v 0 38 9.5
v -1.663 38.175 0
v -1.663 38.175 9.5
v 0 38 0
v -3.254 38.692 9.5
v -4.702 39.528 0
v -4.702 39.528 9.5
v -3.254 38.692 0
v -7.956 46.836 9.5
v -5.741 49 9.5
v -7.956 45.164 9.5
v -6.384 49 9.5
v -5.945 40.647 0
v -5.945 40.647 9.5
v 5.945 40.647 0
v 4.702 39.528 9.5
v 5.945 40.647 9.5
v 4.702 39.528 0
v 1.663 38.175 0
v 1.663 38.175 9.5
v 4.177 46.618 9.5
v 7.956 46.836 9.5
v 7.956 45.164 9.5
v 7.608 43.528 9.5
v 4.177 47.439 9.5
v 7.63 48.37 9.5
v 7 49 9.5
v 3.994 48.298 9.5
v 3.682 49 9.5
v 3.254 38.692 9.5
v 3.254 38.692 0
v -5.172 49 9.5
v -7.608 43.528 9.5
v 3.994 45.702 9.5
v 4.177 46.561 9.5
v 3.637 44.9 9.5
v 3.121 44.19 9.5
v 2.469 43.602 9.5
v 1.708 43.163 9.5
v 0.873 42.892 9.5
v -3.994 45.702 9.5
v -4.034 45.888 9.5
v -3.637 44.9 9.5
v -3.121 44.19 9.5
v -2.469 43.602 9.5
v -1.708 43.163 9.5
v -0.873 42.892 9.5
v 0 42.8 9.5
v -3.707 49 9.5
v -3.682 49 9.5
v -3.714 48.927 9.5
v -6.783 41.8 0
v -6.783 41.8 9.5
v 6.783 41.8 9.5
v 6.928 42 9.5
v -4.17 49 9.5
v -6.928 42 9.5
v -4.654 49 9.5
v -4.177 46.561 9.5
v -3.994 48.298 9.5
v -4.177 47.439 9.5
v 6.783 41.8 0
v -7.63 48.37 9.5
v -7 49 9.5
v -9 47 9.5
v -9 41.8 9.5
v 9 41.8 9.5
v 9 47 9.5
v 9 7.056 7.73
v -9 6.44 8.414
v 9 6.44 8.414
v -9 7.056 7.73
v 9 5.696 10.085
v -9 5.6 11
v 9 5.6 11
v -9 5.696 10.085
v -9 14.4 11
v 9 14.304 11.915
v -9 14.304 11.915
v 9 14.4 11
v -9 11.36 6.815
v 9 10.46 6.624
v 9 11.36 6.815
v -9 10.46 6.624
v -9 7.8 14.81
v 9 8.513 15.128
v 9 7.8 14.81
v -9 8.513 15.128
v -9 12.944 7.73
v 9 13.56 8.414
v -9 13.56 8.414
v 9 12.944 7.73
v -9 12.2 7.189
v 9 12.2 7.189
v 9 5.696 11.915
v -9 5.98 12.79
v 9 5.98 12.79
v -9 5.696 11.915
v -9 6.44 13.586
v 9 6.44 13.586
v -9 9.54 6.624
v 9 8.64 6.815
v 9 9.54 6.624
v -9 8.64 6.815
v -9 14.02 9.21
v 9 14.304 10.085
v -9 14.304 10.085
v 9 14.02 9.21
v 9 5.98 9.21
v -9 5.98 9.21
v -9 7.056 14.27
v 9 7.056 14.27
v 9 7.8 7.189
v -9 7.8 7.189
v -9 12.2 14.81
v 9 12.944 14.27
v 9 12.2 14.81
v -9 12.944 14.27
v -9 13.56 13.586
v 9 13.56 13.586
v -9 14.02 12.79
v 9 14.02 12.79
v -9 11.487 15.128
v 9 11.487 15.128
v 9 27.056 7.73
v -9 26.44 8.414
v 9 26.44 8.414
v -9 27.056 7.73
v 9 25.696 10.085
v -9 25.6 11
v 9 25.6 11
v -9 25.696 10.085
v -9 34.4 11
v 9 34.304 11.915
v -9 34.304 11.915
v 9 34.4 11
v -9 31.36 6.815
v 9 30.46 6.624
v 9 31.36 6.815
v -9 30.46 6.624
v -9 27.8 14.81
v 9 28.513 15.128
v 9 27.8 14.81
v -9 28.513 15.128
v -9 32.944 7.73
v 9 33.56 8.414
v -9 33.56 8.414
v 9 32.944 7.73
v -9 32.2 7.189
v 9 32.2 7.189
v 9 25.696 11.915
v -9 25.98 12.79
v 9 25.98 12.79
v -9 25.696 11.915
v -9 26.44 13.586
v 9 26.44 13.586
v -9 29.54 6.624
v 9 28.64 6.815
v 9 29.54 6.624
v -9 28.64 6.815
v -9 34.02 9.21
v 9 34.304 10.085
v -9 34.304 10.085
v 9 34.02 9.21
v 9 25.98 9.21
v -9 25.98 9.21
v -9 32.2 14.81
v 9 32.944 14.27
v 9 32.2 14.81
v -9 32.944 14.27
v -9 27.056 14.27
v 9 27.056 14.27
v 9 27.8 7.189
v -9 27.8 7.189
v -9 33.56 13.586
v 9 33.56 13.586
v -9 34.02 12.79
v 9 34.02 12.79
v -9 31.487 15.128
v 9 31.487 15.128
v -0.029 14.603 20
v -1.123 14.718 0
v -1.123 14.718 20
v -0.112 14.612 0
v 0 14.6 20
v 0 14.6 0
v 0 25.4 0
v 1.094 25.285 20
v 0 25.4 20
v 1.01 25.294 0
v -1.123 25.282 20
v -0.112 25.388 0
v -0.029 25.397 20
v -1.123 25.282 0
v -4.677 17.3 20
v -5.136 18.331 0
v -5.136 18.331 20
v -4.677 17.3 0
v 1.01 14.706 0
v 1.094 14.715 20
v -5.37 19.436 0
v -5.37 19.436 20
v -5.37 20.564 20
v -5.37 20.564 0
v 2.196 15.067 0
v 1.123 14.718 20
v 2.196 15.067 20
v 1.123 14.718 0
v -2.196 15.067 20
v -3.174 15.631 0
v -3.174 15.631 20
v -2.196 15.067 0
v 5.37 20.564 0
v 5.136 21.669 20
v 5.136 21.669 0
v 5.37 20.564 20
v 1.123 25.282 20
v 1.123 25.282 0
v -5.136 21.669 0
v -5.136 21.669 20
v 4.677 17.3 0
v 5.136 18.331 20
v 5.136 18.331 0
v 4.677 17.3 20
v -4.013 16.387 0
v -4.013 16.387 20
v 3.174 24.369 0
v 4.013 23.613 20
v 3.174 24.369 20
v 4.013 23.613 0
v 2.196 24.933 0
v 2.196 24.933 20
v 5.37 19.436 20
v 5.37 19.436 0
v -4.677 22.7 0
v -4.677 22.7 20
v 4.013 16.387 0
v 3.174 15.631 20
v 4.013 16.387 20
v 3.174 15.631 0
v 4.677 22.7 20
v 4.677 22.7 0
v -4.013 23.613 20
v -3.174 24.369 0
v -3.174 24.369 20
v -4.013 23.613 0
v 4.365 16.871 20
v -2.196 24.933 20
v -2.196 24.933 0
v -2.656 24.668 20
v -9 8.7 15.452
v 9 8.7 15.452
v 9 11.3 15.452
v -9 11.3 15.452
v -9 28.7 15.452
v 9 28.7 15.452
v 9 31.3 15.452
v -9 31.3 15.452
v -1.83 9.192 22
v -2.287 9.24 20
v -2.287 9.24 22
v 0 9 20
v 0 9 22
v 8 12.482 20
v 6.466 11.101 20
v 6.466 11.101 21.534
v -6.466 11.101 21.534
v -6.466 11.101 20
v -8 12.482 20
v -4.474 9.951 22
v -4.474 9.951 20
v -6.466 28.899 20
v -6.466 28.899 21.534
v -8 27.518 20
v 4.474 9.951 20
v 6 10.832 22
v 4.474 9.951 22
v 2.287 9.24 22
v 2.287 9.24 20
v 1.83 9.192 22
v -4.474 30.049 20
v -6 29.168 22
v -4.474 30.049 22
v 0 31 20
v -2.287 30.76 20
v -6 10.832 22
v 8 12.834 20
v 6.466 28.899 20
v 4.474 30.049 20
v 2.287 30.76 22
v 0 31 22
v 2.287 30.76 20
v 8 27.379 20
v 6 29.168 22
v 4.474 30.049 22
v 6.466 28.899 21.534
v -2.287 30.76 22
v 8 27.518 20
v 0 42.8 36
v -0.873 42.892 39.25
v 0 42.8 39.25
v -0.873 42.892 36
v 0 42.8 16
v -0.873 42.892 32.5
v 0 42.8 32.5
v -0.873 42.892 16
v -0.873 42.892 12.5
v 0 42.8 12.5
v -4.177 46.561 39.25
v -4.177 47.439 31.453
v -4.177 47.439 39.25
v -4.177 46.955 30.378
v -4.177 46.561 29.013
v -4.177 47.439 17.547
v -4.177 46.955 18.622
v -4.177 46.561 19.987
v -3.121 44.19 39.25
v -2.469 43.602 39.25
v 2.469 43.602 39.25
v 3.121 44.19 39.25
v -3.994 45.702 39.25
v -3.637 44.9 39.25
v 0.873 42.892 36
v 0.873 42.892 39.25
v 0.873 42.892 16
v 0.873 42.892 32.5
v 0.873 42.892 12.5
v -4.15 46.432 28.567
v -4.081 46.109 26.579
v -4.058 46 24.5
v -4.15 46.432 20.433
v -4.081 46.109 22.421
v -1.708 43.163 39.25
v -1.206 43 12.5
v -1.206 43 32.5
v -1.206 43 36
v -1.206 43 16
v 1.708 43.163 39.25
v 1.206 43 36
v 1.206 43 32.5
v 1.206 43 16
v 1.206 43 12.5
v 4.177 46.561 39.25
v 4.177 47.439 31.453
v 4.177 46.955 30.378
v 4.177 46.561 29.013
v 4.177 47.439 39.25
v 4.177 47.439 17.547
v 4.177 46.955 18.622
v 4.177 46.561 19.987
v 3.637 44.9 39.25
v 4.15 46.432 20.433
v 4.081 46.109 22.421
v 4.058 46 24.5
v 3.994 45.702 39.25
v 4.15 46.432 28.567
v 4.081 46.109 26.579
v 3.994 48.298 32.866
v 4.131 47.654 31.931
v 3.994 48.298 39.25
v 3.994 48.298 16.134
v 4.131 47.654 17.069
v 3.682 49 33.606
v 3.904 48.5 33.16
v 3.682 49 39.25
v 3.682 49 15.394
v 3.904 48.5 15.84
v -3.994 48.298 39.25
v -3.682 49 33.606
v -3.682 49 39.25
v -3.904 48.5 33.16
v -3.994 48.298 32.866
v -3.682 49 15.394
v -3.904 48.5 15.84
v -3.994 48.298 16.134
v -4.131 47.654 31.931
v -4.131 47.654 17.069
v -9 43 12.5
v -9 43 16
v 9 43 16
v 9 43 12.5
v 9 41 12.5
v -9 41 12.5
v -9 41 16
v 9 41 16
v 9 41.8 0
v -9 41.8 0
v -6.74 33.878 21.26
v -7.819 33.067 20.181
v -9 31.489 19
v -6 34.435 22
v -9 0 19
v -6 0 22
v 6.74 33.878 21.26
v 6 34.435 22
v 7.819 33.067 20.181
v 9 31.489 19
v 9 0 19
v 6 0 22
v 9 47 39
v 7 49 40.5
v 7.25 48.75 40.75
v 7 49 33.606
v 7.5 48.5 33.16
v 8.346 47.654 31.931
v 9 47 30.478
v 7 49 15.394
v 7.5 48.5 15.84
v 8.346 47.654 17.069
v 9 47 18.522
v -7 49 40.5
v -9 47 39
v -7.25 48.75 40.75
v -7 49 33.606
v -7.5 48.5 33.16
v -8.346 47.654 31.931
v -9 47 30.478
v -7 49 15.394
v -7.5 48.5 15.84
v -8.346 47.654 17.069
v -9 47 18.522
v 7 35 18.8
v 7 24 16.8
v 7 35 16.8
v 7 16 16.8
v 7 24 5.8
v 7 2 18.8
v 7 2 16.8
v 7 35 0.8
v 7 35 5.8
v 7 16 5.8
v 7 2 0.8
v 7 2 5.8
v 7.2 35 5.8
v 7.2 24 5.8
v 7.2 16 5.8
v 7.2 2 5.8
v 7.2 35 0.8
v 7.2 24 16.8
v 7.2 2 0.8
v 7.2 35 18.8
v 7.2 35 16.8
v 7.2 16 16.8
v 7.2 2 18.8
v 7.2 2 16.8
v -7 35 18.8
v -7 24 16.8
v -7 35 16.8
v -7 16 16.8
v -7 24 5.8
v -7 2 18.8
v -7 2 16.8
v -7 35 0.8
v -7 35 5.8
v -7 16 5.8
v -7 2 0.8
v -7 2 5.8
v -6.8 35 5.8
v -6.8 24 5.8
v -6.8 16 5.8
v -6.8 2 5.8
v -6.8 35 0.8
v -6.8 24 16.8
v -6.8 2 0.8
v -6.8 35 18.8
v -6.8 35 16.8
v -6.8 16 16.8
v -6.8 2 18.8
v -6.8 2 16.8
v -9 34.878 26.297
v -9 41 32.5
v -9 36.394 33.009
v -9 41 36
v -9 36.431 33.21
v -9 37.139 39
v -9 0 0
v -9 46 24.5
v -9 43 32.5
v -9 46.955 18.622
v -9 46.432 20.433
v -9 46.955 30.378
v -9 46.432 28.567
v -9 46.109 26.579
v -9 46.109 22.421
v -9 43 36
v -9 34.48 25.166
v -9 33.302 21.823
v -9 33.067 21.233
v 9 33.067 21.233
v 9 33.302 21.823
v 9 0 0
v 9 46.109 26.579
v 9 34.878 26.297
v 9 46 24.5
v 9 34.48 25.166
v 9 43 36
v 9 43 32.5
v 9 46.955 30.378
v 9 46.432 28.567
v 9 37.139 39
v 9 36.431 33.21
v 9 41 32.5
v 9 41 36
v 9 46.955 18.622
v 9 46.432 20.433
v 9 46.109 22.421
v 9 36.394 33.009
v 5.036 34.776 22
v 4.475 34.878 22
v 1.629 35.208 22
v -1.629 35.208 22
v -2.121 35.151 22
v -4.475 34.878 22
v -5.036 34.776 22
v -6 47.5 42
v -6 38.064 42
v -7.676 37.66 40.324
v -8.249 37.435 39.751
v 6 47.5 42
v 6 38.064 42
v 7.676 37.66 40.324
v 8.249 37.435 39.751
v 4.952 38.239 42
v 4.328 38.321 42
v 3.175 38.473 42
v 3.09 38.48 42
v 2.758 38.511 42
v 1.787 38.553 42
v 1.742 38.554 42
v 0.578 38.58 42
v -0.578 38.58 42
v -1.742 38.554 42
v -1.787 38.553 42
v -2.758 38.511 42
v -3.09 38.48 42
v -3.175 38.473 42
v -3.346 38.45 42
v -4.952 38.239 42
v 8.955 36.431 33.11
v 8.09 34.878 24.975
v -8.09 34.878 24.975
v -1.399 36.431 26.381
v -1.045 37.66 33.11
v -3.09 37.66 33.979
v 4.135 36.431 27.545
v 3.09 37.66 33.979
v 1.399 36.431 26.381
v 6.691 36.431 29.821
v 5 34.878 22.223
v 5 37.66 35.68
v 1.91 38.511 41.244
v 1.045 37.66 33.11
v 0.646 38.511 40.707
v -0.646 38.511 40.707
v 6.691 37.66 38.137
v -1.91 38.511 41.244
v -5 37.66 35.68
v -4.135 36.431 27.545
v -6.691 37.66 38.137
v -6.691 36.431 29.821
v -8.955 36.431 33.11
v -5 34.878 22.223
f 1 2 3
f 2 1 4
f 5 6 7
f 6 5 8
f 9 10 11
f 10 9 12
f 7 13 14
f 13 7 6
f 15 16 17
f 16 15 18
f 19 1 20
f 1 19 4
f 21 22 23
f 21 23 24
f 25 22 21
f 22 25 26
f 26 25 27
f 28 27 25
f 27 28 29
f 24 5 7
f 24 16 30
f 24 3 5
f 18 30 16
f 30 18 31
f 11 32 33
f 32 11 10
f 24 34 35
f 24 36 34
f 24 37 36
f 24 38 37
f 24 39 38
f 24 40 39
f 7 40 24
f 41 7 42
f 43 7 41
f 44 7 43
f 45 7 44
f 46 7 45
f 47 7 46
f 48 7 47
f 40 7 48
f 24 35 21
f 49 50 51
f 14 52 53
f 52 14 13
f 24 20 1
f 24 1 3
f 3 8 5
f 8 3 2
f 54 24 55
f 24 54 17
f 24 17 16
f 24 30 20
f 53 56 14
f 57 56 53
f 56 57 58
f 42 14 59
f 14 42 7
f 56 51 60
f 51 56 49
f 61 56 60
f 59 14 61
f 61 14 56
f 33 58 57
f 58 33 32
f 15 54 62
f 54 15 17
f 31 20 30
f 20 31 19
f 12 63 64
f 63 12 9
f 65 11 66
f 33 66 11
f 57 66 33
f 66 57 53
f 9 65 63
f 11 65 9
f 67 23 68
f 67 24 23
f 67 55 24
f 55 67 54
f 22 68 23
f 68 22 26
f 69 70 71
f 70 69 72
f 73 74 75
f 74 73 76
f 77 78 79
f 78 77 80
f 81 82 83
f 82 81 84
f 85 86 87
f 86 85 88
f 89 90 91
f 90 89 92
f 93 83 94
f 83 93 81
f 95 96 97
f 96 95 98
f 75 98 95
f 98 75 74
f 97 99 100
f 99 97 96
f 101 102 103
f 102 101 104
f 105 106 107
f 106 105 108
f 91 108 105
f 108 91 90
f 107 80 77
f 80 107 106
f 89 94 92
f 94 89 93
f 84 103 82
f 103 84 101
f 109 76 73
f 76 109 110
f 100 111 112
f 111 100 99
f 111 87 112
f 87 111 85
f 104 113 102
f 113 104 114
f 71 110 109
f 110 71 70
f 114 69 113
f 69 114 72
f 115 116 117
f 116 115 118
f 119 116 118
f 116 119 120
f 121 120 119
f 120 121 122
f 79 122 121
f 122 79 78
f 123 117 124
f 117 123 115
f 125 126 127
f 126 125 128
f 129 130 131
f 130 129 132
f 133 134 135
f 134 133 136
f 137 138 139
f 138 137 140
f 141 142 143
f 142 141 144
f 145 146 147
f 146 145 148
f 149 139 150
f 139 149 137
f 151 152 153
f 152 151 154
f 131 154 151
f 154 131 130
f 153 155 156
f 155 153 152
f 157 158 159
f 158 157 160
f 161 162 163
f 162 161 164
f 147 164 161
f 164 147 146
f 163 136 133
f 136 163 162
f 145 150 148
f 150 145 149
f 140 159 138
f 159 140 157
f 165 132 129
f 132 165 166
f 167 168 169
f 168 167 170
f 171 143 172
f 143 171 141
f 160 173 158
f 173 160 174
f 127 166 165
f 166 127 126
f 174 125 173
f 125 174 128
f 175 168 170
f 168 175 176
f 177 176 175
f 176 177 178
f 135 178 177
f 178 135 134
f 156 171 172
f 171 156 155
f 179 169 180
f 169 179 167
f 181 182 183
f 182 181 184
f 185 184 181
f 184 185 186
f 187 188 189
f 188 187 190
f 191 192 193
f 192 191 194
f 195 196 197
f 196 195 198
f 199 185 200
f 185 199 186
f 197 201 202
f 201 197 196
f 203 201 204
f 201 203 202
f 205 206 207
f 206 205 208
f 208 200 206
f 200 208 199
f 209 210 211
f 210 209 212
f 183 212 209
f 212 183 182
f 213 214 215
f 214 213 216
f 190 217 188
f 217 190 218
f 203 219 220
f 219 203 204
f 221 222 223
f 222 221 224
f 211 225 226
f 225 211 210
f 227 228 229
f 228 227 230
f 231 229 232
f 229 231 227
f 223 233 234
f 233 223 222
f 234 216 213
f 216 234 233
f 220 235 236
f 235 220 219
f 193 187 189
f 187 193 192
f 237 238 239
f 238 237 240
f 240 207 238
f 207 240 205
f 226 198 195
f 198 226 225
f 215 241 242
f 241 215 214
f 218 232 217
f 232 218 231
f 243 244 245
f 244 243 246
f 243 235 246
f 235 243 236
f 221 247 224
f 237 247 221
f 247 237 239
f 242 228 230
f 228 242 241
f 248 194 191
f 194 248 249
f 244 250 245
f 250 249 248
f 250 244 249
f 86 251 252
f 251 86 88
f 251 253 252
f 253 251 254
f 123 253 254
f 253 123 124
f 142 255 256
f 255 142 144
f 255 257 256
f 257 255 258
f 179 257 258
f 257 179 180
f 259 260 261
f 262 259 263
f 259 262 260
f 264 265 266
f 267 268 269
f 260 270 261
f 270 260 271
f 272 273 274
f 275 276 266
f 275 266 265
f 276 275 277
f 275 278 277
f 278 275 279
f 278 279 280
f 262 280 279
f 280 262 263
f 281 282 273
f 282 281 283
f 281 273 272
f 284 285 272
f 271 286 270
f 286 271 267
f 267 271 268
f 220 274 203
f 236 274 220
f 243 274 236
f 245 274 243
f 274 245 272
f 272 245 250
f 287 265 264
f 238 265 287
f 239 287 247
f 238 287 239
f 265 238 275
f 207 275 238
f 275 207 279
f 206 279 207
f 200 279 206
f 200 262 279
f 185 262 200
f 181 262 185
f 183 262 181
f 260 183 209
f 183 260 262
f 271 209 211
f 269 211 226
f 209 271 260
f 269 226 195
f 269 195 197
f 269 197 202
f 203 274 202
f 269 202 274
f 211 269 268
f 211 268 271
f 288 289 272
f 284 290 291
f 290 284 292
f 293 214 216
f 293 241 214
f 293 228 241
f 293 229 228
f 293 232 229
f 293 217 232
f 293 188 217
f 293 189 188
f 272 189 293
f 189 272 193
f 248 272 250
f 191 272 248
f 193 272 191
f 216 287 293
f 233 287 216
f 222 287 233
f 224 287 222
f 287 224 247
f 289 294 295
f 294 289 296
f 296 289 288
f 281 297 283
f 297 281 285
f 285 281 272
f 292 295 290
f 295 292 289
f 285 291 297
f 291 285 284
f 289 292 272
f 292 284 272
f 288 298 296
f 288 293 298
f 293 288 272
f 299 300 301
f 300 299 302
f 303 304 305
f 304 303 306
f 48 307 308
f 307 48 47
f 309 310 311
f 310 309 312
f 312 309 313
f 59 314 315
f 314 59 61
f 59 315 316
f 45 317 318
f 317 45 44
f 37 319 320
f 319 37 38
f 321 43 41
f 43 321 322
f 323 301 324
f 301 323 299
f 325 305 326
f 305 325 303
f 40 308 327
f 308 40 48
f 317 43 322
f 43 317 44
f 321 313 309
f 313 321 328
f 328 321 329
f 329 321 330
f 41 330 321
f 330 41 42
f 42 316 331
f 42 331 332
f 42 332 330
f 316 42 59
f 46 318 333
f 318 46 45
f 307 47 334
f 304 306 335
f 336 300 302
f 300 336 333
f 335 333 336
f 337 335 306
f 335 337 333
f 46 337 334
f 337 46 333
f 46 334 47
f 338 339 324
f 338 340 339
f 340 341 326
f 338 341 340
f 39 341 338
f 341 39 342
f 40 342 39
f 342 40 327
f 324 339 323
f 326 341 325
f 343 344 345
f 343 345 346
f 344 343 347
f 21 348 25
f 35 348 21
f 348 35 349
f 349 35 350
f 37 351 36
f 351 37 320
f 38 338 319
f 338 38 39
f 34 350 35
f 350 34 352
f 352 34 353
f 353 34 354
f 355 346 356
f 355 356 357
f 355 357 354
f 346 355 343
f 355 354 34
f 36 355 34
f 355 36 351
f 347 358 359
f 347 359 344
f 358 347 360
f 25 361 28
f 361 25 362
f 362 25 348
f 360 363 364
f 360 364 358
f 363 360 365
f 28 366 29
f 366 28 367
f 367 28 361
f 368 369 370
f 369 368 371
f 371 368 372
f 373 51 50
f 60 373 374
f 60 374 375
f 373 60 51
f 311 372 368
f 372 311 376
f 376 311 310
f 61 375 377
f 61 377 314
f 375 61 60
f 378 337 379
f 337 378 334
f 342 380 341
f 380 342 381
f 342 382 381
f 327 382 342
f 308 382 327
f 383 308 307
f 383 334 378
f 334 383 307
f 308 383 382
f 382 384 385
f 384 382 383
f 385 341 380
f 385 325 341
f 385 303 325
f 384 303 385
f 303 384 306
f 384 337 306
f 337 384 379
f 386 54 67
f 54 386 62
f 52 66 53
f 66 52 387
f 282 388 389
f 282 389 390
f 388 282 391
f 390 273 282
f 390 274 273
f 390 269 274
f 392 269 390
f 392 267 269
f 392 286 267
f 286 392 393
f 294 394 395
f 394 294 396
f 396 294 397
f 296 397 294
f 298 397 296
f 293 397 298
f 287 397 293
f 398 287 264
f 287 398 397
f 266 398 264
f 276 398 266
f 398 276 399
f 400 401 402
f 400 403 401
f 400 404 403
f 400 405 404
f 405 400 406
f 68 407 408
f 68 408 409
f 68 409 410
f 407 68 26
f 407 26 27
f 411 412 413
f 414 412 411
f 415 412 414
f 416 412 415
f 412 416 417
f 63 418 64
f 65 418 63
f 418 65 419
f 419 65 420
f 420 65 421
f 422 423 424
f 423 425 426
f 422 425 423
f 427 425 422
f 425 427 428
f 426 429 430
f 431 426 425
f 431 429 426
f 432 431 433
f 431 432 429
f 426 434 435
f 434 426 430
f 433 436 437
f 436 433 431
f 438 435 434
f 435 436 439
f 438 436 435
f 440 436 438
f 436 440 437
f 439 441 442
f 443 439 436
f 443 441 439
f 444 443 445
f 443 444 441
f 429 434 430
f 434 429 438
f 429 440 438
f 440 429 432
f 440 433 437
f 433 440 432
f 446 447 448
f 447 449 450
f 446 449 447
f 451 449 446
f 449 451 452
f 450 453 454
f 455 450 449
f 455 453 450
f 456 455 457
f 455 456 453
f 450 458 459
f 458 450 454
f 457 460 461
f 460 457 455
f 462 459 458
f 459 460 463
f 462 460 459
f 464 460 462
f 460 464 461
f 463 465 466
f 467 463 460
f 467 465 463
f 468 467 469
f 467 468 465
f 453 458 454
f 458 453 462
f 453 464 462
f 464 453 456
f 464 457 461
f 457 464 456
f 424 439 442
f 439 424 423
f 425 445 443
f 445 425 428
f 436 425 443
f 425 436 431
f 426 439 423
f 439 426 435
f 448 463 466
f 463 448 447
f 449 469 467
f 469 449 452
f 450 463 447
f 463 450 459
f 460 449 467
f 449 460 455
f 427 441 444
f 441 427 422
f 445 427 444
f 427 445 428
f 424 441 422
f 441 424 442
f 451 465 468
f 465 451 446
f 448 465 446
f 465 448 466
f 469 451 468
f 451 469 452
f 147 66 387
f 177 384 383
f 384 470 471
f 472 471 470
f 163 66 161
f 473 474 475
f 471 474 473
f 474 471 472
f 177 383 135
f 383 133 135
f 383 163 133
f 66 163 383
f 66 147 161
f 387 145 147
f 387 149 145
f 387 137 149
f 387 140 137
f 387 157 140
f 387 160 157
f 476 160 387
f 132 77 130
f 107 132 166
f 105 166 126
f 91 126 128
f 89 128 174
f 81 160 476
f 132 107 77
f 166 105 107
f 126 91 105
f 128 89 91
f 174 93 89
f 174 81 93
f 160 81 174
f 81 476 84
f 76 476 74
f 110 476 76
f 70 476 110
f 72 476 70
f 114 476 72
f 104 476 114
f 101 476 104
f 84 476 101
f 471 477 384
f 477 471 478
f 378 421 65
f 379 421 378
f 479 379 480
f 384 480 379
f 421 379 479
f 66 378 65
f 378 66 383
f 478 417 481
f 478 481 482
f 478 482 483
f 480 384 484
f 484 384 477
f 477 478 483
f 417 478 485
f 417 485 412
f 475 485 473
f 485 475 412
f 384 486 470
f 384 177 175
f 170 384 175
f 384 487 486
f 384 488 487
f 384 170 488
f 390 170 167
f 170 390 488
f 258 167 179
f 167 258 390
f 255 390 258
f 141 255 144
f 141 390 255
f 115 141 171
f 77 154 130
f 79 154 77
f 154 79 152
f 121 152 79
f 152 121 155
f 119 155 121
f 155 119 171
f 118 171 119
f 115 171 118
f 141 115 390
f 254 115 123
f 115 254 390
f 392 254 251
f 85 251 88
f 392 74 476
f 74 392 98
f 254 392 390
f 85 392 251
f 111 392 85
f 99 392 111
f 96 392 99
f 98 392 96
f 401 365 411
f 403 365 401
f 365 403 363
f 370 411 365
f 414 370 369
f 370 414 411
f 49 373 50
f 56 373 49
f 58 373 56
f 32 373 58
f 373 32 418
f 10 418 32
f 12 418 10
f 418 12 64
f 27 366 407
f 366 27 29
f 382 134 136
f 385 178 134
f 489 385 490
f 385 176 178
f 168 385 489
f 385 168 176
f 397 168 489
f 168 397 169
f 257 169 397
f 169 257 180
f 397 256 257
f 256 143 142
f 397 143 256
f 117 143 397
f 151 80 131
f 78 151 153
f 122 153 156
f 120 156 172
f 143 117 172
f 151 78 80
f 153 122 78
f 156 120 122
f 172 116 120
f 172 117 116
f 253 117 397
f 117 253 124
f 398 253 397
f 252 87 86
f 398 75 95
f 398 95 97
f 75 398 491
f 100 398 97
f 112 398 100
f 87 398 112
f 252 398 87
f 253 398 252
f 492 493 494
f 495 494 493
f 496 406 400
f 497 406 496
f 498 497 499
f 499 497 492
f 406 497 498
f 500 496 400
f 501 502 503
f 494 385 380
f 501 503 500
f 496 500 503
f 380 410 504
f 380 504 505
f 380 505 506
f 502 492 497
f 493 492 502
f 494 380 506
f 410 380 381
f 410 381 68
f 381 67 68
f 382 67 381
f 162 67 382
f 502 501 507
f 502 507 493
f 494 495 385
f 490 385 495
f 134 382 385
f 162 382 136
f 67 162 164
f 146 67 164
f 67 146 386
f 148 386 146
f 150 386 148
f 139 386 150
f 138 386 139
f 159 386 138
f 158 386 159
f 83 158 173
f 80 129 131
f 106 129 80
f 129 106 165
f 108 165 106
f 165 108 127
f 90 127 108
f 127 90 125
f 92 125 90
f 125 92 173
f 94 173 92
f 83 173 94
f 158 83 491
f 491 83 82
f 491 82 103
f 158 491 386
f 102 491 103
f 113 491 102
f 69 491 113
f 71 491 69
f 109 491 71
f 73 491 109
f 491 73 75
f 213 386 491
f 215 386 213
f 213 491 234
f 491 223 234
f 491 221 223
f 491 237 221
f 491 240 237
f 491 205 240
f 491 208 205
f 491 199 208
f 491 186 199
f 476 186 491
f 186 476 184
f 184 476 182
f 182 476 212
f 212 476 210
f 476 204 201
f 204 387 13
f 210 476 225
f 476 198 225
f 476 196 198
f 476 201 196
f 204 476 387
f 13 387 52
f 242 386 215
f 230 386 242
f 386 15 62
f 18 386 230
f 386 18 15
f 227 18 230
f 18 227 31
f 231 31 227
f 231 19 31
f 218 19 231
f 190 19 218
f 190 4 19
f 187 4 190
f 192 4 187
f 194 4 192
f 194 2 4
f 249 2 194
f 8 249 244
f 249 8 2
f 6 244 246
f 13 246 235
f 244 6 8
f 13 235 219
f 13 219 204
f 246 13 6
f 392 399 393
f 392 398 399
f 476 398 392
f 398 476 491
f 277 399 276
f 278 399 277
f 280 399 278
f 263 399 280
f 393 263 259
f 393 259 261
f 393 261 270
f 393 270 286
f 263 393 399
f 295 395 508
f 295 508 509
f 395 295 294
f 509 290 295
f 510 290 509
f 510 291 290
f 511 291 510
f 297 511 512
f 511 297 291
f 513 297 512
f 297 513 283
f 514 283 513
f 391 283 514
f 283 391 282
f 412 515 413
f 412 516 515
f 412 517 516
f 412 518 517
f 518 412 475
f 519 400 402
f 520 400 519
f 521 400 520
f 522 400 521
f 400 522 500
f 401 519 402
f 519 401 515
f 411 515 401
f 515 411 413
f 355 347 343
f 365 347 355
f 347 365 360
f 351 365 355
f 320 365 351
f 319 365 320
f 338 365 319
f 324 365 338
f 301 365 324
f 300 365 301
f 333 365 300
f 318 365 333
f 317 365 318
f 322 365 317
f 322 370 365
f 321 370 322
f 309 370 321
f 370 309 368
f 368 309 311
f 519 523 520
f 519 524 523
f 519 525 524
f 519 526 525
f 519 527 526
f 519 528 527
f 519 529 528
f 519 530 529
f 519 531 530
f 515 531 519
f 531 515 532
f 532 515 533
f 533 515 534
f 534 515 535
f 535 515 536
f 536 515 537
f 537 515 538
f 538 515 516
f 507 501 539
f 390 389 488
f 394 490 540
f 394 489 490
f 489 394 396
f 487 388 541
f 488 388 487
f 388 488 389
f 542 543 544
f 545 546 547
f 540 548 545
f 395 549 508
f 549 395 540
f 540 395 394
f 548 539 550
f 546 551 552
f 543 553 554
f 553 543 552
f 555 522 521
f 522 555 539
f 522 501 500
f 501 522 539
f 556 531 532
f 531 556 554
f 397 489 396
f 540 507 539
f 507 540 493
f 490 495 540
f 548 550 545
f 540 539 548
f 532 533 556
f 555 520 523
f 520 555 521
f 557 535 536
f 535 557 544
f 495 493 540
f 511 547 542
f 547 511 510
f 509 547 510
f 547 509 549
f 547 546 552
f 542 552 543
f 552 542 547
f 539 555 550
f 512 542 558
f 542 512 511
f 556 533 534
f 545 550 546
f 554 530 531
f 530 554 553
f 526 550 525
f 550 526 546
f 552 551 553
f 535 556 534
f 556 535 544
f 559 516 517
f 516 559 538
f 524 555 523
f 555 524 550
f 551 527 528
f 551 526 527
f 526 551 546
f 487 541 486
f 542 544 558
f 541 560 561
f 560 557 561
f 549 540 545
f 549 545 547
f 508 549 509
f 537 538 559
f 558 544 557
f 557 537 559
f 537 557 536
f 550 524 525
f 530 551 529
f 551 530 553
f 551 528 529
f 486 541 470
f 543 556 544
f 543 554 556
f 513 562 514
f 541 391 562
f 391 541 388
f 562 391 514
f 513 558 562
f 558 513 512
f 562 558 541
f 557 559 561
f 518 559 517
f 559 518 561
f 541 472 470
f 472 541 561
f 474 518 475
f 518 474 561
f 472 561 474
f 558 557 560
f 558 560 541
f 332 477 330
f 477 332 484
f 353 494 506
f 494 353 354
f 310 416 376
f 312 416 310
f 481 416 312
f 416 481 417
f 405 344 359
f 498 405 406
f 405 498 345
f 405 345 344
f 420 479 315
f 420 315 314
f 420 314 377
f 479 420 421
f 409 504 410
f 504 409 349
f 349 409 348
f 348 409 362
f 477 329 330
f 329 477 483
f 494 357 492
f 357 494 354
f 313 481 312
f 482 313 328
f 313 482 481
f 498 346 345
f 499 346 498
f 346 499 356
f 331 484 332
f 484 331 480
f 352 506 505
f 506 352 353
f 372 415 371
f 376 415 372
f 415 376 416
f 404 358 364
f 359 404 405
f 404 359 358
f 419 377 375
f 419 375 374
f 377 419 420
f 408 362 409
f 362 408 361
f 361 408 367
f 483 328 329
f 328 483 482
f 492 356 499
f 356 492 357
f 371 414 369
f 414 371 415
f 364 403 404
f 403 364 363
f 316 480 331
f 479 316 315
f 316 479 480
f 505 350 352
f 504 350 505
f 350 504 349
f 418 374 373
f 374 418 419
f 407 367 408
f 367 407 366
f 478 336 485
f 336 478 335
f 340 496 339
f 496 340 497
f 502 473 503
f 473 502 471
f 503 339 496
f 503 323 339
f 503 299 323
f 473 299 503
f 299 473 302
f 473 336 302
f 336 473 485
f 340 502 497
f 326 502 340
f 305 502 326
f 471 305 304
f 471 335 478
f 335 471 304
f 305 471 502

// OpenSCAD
// PRUSA iteration3
// Y frame corners
// GNU GPL v3
// Josef Průša <iam@josefprusa.cz> and contributors
// http://www.reprap.org/wiki/Prusa_Mendel
// http://prusamendel.org

// Modified by Paul Arden <paul@arden.io> for 350mm smooth rods

module corner_base() {	
    translate([-9,-11,0]) cube([18,22,49]);
}

module corner_holes() {
    translate([-11,-11,0]) {
        // Bottom hole
        translate([0,11,10]) rotate([0,90,0]) translate([0,0,-5]) cylinder(h = 270, r=4.4, $fn=30);
        // Top hole
        translate([0,11,30]) rotate([0,90,0]) translate([0,0,-5]) cylinder(h = 270, r=4.4, $fn=30);
        // Middle hole
        translate([11,0,20]) rotate([0,0,90]) rotate([0,90,0]) translate([0,0,-5]) cylinder(h = 270, r=5.4, $fn=30);
        // Bottom hole bridge
        translate([0,8.8,10]) rotate([0,90,0]) translate([0,0,-5]) cylinder(h = 270, r=2.6, $fn=6);
        // Top hole bridge
        translate([0,8.8,30]) rotate([0,90,0]) translate([0,0,-5]) cylinder(h = 270, r=2.6, $fn=6);
        // Washer hole
        translate([11,-3,20]) rotate([0,0,90]) rotate([0,90,0]) translate([0,0,-5]) cylinder(h = 10, r=11, $fn=30);

        // Top smooth rod insert
        // Smooth rod place
        translate([11,-2.25,47]) rotate([0,90,90]) cylinder(h = 15, r=4.2, $fn=30); 
        // Ziptie
        translate([-5,6,41]) cube([30,3.5,2]);
      
        // LM8UU keepout
        difference() {
            translate([11,12.5,46]) rotate([0,90,90]) cylinder(h = 270, r=8, $fn=30);
            translate([21,12.5,62]) rotate([0,90,90]) cube([20,20,30]);
        } 
  
        translate([21,12.5,57]) rotate([0,90,90]) cube([15.2,20,20]);
    }
}

module corner_fancy() {
    // Side corner cutouts
    translate([-8,-9,0]) rotate([0,0,-45-180]) translate([-15,0,-1]) cube([30,30,51]);
    translate([8,-9,0]) rotate([0,0,45-180]) translate([-15,0,-1]) cube([30,30,51]);
    // Top corner cutouts
    translate([7,0,49]) rotate([0,45,0]) translate([-15,-15,0]) cube([30,30,30]);
    translate([-7,0,49]) rotate([0,-45,0]) translate([-15,-15,0]) cube([30,30,30]);
    rotate([0,0,90]) {
        translate([-9.5,0,49]) rotate([0,-45,0]) translate([-15,-15,0]) cube([30,30,30]);
    }
}

module selective_infill() {  
    translate([7,2,0.8]) cube([0.2,33,5]); 
    translate([-7,2,0.8]) cube([0.2,33,5]);
    
    translate([ 7,16,5.8]) cube([0.2,8,11]);
    translate([-7,16,5.8]) cube([0.2,8,11]);
    
    translate([7,2,16.8]) cube([0.2,33,2]); 
    translate([-7,2,16.8]) cube([0.2,33,2]);
}

module extension_corner_holes(){
    translate([-11,-11,0]) {
        // Washer hole
        translate([11,-30,20]) rotate([0,0,90]) rotate([0,90,0]) translate([0,0,-5]) cylinder(h = 40, r=13, $fn=30);

        // Top smooth rod insert
        // Smooth rod place
        translate([11,-17.25,47]) rotate([0,90,90]) cylinder(h = 30, r=4.2, $fn=30);  
    }    
}
   
module extension_corner_fancy() {
    // Side corner cutouts
    translate([-8,-9,0]) rotate([0,0,-45-180]) translate([-15,0,-1]) cube([30,30,51]);
    translate([8,-9,0]) rotate([0,0,45-180]) translate([-15,0,-1]) cube([30,30,51]);
    // Top corner cutouts
    translate([7,0,49]) rotate([0,45,0]) translate([-15,-15,0]) cube([30,90,30]);
    translate([-7,0,49]) rotate([0,-45,0]) translate([-15,-15,0]) cube([30,90,30]);
    rotate([0,0,90]){
        translate([-9.5,0,49]) rotate([0,-45,0]) translate([-15,-15,0]) cube([30,30,30]);
    }
}

module extension_base() {
    translate([-9,-31,27])cube([18,23,22]);
}

module extension() {
    difference() {
        extension_base();
        translate([0,-20,0]) extension_corner_fancy();
        extension_corner_holes();
    }
}

module corner() {
    difference() {
        corner_base();
        corner_holes();
        corner_fancy();
        translate([0,11,0]) rotate([90,0,0]) selective_infill();        
    }
}

module corner_extended_base() {
    union() {
        corner();
        extension();
    }
}

module corner_extended_relief() {
    translate([-12.5,5,51]) rotate([0,90,0]) scale([1,2,1]) cylinder(h = 25, r=5, $fn=30);
}

module corner_extended() {
    // Rotate the part for better printing
    translate([0,0,11]) rotate([-90,0,0]) 
    difference() {
        corner_extended_base();
        difference() {
            translate([0,-42,29]) scale([1,2,0.5]) sphere(20);
            corner();
        }
        translate([0,-18.5,0]) corner_extended_relief();
        translate([-15,-25,41]) cube([30,3.5,2]);
    }
}

corner_extended();
